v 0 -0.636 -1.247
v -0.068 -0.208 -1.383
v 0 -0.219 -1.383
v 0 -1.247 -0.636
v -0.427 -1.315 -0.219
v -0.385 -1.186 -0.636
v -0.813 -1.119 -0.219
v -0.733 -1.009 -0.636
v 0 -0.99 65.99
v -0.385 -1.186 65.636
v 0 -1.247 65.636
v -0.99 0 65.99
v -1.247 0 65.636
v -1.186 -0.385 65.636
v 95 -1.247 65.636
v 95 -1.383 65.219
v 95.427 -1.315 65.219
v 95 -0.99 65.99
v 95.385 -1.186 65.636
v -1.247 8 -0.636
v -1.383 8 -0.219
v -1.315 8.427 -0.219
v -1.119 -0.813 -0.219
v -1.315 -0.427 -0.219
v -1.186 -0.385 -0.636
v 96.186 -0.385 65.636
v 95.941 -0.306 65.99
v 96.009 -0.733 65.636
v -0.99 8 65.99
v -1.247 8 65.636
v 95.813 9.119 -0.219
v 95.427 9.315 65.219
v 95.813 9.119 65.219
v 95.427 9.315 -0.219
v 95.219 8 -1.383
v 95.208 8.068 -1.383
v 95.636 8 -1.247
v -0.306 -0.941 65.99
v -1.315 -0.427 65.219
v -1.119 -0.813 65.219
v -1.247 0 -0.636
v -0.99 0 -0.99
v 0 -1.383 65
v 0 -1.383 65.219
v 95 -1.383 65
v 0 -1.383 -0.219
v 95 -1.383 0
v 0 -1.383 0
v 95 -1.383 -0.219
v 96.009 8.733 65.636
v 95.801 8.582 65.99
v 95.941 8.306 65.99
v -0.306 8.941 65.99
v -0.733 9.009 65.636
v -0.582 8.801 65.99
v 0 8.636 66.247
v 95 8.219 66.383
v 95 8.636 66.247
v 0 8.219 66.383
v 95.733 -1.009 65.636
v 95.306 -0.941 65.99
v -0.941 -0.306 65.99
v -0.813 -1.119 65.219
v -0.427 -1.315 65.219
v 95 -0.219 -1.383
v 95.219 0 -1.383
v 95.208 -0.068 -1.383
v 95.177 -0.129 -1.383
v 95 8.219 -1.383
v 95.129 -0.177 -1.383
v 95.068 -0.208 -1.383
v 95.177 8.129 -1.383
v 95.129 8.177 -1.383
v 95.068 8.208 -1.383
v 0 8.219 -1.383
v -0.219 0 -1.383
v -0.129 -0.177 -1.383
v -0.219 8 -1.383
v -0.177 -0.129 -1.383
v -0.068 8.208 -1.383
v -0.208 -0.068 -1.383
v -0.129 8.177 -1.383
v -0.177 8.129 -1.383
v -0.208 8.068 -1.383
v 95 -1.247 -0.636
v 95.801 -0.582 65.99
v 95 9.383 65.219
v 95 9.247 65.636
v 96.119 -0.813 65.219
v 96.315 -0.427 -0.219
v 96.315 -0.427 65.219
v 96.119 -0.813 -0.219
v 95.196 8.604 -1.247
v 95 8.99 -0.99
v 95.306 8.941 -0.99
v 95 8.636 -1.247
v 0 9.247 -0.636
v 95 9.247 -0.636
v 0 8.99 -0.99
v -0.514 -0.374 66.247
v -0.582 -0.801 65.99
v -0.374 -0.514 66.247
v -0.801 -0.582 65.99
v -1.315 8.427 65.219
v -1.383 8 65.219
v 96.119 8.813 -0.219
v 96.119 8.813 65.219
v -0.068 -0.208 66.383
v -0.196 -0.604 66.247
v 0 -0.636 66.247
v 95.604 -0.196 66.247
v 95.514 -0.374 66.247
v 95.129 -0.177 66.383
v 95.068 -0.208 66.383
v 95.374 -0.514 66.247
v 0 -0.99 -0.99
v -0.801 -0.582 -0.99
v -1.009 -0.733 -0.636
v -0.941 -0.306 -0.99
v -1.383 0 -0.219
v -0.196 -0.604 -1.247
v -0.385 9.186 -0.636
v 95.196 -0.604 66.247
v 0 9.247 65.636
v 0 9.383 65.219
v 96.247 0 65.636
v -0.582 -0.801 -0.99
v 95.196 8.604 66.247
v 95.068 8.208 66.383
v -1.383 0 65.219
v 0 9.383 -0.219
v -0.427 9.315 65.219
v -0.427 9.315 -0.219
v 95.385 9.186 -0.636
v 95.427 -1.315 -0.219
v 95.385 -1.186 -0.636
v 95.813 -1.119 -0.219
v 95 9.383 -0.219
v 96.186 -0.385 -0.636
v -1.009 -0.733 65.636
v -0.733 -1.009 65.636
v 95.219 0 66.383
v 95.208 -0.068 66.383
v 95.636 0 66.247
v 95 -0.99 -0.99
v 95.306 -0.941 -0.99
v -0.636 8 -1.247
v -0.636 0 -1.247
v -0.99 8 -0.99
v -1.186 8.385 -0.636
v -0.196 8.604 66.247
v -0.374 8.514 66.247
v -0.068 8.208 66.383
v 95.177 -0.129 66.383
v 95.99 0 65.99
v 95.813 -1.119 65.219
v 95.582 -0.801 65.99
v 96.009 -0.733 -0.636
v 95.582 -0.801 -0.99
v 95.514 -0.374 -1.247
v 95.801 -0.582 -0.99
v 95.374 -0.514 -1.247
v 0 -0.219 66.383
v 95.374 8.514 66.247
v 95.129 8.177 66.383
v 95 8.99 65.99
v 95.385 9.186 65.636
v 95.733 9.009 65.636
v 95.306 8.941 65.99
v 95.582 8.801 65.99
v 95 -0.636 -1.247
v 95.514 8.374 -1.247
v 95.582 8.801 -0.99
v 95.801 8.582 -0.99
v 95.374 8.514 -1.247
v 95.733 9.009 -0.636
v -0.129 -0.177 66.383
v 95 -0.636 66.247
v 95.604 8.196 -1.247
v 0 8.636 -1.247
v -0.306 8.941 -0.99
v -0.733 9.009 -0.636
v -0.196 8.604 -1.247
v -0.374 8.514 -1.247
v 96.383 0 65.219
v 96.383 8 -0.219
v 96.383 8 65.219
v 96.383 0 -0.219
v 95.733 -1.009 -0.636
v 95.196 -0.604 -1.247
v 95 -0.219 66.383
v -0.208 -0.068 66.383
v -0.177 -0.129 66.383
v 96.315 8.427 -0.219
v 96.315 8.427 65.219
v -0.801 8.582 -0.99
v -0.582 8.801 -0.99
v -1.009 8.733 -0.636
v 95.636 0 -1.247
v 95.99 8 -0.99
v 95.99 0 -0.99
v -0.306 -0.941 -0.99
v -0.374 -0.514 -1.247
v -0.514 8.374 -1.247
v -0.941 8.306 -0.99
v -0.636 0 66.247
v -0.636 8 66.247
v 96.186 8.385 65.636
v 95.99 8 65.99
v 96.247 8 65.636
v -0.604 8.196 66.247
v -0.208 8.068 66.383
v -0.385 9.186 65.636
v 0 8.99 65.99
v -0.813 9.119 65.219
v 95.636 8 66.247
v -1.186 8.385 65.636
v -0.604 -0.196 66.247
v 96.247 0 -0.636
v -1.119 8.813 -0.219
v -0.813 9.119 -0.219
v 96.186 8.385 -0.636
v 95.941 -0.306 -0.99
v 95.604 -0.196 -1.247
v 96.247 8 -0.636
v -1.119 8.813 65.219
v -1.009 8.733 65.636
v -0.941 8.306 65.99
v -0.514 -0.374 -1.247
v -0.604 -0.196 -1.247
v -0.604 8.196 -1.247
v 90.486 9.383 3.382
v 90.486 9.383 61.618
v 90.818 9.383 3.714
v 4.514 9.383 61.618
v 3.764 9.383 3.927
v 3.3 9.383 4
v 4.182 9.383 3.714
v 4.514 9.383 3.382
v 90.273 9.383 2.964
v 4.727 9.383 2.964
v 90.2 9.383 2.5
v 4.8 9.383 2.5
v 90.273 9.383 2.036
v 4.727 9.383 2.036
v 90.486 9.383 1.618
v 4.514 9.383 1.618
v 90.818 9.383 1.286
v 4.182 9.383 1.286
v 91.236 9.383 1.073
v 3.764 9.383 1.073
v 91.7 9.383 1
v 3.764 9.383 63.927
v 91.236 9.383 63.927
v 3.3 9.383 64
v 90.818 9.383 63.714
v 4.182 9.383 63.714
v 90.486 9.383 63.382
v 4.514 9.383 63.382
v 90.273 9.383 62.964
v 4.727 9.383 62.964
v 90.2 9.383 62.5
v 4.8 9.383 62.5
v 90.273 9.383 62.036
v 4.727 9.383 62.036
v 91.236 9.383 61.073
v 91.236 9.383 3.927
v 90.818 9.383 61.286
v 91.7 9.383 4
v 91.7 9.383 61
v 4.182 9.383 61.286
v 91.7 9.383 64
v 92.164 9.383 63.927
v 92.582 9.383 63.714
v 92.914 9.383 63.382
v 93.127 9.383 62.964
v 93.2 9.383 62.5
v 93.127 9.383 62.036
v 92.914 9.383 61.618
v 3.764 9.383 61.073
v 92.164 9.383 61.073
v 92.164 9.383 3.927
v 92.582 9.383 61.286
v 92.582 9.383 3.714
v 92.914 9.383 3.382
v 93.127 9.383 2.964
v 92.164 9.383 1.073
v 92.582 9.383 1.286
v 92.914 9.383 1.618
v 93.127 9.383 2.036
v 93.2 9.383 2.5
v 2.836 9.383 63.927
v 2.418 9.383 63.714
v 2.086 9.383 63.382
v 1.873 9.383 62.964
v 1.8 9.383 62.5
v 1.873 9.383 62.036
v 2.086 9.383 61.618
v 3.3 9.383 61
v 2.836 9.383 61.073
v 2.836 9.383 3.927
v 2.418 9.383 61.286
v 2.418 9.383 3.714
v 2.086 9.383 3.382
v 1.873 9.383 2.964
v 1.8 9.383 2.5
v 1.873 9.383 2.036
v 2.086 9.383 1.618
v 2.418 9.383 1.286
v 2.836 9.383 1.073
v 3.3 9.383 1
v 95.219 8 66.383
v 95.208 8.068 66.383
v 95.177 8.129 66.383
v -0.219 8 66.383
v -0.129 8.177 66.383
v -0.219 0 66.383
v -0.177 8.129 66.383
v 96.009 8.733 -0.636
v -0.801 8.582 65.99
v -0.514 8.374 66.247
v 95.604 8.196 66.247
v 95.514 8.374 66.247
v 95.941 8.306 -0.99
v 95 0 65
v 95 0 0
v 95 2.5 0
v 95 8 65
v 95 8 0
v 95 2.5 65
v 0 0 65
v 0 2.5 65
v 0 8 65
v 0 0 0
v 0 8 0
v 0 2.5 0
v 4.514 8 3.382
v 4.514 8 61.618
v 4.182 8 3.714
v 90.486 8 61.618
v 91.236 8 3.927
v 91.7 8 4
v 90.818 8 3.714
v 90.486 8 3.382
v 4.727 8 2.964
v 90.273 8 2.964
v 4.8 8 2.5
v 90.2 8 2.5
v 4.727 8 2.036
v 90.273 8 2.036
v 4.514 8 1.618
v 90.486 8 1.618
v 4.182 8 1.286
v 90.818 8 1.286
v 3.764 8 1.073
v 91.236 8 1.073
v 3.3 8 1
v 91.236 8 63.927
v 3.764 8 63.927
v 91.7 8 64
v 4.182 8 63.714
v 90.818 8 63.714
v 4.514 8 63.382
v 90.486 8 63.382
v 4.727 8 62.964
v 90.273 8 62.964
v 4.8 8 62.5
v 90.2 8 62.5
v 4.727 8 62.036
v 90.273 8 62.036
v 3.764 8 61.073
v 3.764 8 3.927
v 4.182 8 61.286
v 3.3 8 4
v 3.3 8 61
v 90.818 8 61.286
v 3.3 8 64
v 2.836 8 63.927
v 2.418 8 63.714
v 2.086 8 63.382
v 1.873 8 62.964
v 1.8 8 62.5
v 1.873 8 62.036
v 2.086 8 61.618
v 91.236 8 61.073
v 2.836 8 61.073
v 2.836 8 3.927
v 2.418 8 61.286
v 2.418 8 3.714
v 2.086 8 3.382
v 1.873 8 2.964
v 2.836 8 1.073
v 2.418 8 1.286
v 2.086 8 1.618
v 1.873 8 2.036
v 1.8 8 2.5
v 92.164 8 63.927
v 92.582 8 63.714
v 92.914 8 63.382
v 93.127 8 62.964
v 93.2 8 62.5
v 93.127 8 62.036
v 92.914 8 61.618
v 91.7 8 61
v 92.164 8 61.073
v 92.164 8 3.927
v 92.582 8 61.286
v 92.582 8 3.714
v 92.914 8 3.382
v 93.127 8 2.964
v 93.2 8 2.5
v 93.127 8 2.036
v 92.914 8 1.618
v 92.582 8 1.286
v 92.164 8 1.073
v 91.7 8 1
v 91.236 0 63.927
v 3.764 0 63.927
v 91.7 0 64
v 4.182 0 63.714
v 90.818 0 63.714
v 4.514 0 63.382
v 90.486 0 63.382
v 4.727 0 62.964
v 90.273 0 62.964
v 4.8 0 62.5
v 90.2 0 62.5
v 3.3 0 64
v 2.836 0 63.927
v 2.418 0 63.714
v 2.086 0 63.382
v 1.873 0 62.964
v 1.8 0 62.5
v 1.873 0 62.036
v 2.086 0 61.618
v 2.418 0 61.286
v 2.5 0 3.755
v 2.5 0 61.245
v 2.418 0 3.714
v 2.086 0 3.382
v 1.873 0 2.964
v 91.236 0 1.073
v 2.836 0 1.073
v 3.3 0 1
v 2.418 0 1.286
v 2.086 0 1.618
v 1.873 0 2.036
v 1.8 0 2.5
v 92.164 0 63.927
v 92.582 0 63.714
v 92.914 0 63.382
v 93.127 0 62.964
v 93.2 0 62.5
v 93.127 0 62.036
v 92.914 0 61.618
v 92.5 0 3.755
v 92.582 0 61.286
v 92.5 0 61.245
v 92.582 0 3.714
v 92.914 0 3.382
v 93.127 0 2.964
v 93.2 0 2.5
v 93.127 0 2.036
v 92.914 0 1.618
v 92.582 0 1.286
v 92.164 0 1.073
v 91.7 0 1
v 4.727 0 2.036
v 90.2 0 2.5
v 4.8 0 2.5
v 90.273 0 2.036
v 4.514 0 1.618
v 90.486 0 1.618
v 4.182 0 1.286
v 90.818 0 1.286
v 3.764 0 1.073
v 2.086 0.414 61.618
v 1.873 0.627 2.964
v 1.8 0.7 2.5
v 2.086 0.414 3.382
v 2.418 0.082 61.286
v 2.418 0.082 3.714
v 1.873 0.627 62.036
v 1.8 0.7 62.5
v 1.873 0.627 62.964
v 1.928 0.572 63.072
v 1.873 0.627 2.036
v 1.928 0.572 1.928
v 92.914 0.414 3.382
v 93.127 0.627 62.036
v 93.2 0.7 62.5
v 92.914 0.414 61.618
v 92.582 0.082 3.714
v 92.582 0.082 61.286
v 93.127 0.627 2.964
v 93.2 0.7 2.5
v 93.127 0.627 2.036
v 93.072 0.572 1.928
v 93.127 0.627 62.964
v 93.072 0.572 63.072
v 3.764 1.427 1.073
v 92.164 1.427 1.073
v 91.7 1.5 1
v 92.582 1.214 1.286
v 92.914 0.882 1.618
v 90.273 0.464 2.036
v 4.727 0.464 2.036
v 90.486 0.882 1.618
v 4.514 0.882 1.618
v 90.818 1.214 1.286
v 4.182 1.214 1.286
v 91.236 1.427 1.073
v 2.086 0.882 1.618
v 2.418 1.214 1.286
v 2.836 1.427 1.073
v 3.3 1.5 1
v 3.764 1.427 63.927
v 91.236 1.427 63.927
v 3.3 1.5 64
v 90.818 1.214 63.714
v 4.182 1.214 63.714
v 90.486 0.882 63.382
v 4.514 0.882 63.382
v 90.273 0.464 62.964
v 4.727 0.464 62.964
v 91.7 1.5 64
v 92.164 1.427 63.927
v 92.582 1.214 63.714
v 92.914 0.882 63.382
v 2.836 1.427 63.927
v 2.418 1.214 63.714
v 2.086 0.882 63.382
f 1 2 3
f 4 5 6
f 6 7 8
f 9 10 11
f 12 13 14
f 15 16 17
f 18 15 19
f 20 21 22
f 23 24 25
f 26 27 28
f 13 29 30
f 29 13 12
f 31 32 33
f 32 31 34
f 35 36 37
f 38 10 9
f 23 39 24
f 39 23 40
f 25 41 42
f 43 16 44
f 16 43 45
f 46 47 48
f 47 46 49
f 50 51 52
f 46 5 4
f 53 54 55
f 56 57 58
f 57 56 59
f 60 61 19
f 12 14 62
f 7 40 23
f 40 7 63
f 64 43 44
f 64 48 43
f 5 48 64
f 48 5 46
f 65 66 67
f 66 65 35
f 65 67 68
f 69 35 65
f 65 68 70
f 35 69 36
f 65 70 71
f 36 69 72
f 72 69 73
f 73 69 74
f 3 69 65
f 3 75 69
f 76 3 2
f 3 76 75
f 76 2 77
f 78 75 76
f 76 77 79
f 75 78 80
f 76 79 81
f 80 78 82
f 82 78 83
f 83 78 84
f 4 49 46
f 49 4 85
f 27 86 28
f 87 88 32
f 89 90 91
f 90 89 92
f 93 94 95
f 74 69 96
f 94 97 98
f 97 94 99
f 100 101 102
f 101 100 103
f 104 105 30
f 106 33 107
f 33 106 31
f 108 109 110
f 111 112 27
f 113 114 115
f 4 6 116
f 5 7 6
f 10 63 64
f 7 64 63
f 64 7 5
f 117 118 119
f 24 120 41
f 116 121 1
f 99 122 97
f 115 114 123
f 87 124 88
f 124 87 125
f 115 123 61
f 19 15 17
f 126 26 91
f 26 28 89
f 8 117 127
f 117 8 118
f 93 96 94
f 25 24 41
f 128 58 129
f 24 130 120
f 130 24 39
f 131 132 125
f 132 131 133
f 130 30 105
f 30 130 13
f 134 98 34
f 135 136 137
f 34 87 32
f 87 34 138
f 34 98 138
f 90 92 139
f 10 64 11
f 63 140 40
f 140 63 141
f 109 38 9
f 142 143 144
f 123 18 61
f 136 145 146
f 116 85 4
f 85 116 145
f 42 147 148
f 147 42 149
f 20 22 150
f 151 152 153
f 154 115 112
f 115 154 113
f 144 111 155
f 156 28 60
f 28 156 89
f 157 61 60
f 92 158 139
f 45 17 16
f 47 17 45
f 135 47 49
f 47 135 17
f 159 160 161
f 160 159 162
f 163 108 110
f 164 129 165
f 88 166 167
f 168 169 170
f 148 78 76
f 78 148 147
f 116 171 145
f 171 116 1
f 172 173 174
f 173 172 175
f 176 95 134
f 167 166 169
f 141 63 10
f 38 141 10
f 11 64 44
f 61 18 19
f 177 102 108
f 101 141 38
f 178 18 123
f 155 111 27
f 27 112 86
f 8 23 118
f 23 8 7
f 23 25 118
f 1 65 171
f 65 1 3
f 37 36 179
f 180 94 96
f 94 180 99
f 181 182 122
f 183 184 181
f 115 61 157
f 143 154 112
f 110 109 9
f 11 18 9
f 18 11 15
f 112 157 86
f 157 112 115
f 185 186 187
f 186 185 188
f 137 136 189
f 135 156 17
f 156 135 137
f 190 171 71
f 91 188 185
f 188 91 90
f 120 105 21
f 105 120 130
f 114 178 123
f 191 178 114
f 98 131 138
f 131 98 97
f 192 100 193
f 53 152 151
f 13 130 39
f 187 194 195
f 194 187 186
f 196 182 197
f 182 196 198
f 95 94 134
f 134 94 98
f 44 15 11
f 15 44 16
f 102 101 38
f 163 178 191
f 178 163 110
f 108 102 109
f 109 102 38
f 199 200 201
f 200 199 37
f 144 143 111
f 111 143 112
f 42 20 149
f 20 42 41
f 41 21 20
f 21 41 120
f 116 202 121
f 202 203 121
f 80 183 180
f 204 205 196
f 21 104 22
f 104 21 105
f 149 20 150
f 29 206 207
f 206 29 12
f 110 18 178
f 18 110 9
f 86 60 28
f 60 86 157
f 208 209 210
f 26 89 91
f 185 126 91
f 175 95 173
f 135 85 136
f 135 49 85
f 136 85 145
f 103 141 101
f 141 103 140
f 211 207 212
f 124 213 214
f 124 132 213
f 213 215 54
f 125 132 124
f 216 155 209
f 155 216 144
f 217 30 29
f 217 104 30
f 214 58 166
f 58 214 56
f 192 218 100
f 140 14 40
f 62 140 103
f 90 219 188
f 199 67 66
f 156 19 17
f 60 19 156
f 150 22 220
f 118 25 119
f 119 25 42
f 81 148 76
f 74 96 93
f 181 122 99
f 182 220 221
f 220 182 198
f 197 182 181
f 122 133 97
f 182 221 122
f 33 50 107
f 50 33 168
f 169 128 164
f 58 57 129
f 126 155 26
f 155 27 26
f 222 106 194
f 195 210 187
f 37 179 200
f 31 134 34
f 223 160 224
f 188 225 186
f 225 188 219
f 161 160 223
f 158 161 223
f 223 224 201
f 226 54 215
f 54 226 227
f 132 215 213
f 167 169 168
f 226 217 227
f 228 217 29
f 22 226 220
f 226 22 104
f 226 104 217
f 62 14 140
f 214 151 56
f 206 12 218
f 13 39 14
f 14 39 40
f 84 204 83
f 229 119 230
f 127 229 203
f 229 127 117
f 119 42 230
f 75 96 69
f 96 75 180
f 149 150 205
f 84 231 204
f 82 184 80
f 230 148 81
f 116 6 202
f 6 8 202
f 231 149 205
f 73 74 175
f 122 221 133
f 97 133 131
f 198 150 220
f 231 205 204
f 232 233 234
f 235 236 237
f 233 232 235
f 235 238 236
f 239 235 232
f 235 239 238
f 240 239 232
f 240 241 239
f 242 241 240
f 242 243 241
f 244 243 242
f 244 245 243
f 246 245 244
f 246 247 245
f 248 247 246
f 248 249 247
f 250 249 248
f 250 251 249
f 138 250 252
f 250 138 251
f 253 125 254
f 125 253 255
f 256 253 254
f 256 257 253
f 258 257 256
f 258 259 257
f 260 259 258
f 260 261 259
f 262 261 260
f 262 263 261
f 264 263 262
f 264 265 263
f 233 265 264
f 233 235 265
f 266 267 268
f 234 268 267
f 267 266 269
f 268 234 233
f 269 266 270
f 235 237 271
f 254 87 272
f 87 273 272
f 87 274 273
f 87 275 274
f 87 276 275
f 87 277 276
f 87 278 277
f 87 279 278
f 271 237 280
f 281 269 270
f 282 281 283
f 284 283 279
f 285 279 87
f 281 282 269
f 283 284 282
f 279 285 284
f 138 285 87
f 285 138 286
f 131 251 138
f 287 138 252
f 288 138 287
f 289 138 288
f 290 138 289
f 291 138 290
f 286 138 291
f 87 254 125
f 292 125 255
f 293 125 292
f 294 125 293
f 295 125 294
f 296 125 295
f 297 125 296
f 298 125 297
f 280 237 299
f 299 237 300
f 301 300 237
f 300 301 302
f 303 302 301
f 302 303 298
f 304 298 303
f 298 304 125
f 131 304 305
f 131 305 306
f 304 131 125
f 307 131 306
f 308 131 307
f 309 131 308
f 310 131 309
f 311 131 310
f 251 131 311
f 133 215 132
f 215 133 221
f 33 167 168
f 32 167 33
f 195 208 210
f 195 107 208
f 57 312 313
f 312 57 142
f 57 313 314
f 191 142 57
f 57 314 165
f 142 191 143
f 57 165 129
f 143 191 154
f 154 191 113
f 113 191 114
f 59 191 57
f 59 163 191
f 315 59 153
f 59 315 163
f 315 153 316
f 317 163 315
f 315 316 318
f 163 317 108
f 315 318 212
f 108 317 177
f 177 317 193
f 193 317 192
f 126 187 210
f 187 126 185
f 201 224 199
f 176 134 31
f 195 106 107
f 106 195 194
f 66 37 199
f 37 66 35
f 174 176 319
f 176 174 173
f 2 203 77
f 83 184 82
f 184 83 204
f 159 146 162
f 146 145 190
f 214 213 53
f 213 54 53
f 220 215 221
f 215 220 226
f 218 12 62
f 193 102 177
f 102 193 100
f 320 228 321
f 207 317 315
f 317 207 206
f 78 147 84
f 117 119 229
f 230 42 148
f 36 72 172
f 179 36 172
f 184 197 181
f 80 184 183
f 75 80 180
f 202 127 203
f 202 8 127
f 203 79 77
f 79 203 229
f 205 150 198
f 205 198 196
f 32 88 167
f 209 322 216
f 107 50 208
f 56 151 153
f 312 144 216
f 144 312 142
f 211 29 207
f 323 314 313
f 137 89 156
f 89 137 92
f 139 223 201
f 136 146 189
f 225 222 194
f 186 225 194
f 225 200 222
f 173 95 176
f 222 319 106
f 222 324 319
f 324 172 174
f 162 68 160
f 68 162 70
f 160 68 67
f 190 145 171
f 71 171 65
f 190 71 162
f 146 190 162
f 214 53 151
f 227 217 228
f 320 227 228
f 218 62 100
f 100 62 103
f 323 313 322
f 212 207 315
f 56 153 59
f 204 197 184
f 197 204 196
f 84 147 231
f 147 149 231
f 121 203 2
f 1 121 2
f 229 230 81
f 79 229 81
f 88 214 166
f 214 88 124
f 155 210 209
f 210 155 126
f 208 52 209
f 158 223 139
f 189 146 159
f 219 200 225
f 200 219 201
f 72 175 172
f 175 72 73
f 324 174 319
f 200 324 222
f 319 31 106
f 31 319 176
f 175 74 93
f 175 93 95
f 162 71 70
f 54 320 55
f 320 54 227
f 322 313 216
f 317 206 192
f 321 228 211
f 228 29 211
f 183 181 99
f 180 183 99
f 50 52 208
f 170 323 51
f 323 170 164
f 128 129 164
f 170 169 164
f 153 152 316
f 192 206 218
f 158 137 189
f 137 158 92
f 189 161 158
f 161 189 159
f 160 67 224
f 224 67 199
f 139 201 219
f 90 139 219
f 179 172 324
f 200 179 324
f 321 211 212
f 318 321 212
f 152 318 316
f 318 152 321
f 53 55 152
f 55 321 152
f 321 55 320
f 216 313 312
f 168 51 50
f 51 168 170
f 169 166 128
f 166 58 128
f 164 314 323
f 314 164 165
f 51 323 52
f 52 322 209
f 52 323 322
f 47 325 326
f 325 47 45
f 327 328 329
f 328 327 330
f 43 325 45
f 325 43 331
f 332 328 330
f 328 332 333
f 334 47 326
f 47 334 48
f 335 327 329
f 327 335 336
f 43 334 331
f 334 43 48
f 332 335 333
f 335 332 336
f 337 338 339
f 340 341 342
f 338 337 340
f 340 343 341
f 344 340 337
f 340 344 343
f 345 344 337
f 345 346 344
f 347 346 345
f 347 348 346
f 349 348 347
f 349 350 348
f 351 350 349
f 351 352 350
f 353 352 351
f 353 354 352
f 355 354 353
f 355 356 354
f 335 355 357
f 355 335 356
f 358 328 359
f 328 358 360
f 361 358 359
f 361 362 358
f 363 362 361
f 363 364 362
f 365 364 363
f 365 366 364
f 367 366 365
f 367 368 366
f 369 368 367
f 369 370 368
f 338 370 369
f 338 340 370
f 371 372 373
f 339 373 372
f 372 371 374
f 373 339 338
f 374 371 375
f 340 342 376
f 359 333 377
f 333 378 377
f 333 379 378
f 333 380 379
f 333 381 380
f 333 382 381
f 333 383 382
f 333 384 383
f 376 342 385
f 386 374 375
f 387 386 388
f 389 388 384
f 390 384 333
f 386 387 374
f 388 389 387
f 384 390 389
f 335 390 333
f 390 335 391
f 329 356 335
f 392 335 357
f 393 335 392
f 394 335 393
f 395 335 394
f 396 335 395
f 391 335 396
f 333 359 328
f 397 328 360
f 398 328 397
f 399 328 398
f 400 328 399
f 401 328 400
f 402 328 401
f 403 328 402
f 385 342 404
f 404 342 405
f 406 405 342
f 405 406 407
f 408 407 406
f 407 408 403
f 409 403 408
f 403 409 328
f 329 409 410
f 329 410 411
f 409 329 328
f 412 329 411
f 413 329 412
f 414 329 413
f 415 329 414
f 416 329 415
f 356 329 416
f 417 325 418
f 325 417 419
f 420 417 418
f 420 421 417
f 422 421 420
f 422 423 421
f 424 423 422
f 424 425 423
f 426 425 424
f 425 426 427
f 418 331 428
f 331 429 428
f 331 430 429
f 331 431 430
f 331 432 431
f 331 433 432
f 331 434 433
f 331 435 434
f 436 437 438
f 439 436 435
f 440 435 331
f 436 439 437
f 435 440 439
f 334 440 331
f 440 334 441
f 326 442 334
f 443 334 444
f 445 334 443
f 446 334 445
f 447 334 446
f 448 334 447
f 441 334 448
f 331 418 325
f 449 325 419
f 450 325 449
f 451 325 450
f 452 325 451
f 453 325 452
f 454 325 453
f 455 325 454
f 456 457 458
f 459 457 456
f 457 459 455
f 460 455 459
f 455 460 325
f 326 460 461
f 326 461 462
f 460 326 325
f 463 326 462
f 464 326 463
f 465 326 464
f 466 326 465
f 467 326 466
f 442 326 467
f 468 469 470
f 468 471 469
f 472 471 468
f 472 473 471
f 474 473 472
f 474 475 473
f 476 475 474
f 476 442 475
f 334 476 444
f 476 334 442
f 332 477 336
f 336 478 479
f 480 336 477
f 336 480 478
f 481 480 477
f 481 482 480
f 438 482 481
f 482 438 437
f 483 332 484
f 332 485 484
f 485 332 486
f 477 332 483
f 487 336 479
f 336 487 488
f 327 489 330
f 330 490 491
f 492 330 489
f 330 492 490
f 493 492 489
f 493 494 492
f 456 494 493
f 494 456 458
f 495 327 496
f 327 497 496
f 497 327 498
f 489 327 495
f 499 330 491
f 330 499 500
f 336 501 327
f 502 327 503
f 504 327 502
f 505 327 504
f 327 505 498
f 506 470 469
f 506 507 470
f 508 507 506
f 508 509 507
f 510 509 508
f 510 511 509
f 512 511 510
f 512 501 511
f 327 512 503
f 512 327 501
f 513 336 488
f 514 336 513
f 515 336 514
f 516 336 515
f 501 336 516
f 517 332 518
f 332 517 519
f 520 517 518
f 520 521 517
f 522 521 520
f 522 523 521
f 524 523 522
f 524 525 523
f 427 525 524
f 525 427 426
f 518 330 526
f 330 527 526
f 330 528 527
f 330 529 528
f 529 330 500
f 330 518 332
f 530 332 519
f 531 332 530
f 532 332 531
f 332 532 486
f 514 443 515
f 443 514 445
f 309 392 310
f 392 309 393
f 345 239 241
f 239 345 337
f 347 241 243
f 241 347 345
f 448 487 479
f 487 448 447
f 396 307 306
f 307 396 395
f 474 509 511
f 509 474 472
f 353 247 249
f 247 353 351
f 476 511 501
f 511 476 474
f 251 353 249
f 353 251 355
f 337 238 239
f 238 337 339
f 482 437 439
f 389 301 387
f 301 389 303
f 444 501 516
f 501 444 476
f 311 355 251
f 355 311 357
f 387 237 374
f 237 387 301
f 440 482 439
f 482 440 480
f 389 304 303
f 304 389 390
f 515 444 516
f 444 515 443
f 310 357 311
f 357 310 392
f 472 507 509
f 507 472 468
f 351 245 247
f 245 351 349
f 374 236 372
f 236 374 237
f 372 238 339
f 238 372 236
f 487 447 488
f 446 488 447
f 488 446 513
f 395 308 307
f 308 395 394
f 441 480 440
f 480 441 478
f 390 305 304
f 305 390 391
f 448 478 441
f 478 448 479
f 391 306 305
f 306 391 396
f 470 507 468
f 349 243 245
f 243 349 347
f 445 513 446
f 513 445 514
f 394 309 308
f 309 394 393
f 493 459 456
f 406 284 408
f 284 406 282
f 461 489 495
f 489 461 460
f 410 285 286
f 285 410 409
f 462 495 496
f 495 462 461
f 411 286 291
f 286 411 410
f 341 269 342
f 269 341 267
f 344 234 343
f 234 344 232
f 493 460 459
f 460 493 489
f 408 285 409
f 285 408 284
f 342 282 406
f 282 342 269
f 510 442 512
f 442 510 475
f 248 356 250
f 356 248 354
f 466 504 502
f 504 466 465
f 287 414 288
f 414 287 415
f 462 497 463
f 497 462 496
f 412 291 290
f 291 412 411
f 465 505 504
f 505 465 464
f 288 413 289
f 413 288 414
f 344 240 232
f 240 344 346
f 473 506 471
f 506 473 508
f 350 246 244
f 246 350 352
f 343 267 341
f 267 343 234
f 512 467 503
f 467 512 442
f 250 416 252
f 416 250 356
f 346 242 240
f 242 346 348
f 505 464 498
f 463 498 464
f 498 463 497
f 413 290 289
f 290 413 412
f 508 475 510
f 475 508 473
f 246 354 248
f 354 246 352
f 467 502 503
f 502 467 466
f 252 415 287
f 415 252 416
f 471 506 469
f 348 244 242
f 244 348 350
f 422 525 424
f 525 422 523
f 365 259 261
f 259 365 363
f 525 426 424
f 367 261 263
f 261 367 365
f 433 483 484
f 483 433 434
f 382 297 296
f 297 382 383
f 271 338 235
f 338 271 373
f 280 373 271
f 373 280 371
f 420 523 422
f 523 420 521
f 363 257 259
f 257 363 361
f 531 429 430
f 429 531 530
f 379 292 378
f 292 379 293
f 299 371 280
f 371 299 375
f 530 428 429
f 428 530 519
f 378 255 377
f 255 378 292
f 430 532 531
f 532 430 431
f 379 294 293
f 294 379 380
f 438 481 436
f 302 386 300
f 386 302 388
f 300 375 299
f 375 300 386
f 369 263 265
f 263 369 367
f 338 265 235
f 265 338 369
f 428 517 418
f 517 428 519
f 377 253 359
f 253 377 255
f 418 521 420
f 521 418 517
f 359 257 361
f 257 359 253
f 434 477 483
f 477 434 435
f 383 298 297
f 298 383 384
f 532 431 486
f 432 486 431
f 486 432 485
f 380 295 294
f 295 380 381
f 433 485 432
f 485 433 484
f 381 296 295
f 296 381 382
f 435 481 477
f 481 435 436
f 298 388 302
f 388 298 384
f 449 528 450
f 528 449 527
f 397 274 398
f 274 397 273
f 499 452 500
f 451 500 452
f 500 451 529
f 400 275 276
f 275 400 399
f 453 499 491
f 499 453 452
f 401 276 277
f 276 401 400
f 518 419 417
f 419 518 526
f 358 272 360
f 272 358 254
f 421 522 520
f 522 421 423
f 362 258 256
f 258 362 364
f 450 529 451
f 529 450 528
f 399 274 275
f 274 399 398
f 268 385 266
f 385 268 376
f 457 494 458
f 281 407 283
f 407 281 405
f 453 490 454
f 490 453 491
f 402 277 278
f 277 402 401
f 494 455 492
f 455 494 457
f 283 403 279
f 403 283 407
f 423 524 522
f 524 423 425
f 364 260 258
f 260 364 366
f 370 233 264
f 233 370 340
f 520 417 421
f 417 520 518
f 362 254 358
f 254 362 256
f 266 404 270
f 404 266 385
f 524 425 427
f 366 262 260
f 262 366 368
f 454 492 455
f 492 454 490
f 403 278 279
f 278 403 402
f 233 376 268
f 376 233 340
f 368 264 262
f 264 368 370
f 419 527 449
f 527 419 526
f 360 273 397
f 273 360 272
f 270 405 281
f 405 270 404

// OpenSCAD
$fn=20;

breite = 95;
tiefe = 8;
hoehe = 65;

schiene = 2.5;
platinendicke = 1.8;


wanddicke = 1.4;
edge_radius = wanddicke;

module schienen() {
    cube([schiene, tiefe, schiene]);

    translate([breite-schiene, 0, 0])
    cube([schiene, tiefe, schiene]);

    translate([0, 0, schiene + platinendicke]) {
        cube([schiene, tiefe, schiene]);
        
        translate([breite-schiene, 0, 0])
        cube([schiene, tiefe, schiene]);
    }
}

schraube=3;

module schr() {
    translate([schraube/2, 20, schraube/2])
    rotate([90, 0, 0])
    cylinder(h=20, d=schraube);
}


module auflage() {
    // pcbauflage
    translate([0, 0, 0])
    linear_extrude(hoehe)
    polygon(points=[[0,0], [0, 2.5], [2.5, 0]]);

    translate([breite, 0, hoehe])
    rotate([0, 180, 0])
    linear_extrude(hoehe)
    polygon(points=[[0,0], [0, 2.5], [2.5, 0]]);

    translate([breite, 0, 0])
    rotate([0, -90, 0])
    linear_extrude(breite)
    polygon(points=[[0,0], [0, 2.5], [2.5, 0]]);

    translate([0, 0, hoehe])
    rotate([0, 90, 0])
    linear_extrude(breite)
    polygon(points=[[0,0], [0, 2.5], [2.5, 0]]);
}

difference() {
    union() {
        difference() {
            hull() {
                sphere(r=edge_radius);
                translate([breite, 0, 0]) sphere(r=edge_radius);
                translate([breite, tiefe, 0]) sphere(r=edge_radius);
                translate([0, tiefe, 0]) sphere(r=edge_radius);
                translate([0, 0, hoehe]) {
                    sphere(r=edge_radius);
                    translate([breite, 0, 0]) sphere(r=edge_radius);
                    translate([breite, tiefe, 0]) sphere(r=edge_radius);
                    translate([0, tiefe, 0]) sphere(r=edge_radius);
                }
            }
            union() {
                translate([0, 0-10, 0]) cube([breite, tiefe+10, hoehe]);
                
            }
        }
        auflage();
    }
    translate([1.8, 0, 1]) schr();
    translate([breite-schraube-1.8, 0, 1]) schr();
    translate([1.8, 0, hoehe-schraube-1]) schr();
    translate([breite-schraube-1.8, 0, hoehe-schraube-1]) schr();
}
